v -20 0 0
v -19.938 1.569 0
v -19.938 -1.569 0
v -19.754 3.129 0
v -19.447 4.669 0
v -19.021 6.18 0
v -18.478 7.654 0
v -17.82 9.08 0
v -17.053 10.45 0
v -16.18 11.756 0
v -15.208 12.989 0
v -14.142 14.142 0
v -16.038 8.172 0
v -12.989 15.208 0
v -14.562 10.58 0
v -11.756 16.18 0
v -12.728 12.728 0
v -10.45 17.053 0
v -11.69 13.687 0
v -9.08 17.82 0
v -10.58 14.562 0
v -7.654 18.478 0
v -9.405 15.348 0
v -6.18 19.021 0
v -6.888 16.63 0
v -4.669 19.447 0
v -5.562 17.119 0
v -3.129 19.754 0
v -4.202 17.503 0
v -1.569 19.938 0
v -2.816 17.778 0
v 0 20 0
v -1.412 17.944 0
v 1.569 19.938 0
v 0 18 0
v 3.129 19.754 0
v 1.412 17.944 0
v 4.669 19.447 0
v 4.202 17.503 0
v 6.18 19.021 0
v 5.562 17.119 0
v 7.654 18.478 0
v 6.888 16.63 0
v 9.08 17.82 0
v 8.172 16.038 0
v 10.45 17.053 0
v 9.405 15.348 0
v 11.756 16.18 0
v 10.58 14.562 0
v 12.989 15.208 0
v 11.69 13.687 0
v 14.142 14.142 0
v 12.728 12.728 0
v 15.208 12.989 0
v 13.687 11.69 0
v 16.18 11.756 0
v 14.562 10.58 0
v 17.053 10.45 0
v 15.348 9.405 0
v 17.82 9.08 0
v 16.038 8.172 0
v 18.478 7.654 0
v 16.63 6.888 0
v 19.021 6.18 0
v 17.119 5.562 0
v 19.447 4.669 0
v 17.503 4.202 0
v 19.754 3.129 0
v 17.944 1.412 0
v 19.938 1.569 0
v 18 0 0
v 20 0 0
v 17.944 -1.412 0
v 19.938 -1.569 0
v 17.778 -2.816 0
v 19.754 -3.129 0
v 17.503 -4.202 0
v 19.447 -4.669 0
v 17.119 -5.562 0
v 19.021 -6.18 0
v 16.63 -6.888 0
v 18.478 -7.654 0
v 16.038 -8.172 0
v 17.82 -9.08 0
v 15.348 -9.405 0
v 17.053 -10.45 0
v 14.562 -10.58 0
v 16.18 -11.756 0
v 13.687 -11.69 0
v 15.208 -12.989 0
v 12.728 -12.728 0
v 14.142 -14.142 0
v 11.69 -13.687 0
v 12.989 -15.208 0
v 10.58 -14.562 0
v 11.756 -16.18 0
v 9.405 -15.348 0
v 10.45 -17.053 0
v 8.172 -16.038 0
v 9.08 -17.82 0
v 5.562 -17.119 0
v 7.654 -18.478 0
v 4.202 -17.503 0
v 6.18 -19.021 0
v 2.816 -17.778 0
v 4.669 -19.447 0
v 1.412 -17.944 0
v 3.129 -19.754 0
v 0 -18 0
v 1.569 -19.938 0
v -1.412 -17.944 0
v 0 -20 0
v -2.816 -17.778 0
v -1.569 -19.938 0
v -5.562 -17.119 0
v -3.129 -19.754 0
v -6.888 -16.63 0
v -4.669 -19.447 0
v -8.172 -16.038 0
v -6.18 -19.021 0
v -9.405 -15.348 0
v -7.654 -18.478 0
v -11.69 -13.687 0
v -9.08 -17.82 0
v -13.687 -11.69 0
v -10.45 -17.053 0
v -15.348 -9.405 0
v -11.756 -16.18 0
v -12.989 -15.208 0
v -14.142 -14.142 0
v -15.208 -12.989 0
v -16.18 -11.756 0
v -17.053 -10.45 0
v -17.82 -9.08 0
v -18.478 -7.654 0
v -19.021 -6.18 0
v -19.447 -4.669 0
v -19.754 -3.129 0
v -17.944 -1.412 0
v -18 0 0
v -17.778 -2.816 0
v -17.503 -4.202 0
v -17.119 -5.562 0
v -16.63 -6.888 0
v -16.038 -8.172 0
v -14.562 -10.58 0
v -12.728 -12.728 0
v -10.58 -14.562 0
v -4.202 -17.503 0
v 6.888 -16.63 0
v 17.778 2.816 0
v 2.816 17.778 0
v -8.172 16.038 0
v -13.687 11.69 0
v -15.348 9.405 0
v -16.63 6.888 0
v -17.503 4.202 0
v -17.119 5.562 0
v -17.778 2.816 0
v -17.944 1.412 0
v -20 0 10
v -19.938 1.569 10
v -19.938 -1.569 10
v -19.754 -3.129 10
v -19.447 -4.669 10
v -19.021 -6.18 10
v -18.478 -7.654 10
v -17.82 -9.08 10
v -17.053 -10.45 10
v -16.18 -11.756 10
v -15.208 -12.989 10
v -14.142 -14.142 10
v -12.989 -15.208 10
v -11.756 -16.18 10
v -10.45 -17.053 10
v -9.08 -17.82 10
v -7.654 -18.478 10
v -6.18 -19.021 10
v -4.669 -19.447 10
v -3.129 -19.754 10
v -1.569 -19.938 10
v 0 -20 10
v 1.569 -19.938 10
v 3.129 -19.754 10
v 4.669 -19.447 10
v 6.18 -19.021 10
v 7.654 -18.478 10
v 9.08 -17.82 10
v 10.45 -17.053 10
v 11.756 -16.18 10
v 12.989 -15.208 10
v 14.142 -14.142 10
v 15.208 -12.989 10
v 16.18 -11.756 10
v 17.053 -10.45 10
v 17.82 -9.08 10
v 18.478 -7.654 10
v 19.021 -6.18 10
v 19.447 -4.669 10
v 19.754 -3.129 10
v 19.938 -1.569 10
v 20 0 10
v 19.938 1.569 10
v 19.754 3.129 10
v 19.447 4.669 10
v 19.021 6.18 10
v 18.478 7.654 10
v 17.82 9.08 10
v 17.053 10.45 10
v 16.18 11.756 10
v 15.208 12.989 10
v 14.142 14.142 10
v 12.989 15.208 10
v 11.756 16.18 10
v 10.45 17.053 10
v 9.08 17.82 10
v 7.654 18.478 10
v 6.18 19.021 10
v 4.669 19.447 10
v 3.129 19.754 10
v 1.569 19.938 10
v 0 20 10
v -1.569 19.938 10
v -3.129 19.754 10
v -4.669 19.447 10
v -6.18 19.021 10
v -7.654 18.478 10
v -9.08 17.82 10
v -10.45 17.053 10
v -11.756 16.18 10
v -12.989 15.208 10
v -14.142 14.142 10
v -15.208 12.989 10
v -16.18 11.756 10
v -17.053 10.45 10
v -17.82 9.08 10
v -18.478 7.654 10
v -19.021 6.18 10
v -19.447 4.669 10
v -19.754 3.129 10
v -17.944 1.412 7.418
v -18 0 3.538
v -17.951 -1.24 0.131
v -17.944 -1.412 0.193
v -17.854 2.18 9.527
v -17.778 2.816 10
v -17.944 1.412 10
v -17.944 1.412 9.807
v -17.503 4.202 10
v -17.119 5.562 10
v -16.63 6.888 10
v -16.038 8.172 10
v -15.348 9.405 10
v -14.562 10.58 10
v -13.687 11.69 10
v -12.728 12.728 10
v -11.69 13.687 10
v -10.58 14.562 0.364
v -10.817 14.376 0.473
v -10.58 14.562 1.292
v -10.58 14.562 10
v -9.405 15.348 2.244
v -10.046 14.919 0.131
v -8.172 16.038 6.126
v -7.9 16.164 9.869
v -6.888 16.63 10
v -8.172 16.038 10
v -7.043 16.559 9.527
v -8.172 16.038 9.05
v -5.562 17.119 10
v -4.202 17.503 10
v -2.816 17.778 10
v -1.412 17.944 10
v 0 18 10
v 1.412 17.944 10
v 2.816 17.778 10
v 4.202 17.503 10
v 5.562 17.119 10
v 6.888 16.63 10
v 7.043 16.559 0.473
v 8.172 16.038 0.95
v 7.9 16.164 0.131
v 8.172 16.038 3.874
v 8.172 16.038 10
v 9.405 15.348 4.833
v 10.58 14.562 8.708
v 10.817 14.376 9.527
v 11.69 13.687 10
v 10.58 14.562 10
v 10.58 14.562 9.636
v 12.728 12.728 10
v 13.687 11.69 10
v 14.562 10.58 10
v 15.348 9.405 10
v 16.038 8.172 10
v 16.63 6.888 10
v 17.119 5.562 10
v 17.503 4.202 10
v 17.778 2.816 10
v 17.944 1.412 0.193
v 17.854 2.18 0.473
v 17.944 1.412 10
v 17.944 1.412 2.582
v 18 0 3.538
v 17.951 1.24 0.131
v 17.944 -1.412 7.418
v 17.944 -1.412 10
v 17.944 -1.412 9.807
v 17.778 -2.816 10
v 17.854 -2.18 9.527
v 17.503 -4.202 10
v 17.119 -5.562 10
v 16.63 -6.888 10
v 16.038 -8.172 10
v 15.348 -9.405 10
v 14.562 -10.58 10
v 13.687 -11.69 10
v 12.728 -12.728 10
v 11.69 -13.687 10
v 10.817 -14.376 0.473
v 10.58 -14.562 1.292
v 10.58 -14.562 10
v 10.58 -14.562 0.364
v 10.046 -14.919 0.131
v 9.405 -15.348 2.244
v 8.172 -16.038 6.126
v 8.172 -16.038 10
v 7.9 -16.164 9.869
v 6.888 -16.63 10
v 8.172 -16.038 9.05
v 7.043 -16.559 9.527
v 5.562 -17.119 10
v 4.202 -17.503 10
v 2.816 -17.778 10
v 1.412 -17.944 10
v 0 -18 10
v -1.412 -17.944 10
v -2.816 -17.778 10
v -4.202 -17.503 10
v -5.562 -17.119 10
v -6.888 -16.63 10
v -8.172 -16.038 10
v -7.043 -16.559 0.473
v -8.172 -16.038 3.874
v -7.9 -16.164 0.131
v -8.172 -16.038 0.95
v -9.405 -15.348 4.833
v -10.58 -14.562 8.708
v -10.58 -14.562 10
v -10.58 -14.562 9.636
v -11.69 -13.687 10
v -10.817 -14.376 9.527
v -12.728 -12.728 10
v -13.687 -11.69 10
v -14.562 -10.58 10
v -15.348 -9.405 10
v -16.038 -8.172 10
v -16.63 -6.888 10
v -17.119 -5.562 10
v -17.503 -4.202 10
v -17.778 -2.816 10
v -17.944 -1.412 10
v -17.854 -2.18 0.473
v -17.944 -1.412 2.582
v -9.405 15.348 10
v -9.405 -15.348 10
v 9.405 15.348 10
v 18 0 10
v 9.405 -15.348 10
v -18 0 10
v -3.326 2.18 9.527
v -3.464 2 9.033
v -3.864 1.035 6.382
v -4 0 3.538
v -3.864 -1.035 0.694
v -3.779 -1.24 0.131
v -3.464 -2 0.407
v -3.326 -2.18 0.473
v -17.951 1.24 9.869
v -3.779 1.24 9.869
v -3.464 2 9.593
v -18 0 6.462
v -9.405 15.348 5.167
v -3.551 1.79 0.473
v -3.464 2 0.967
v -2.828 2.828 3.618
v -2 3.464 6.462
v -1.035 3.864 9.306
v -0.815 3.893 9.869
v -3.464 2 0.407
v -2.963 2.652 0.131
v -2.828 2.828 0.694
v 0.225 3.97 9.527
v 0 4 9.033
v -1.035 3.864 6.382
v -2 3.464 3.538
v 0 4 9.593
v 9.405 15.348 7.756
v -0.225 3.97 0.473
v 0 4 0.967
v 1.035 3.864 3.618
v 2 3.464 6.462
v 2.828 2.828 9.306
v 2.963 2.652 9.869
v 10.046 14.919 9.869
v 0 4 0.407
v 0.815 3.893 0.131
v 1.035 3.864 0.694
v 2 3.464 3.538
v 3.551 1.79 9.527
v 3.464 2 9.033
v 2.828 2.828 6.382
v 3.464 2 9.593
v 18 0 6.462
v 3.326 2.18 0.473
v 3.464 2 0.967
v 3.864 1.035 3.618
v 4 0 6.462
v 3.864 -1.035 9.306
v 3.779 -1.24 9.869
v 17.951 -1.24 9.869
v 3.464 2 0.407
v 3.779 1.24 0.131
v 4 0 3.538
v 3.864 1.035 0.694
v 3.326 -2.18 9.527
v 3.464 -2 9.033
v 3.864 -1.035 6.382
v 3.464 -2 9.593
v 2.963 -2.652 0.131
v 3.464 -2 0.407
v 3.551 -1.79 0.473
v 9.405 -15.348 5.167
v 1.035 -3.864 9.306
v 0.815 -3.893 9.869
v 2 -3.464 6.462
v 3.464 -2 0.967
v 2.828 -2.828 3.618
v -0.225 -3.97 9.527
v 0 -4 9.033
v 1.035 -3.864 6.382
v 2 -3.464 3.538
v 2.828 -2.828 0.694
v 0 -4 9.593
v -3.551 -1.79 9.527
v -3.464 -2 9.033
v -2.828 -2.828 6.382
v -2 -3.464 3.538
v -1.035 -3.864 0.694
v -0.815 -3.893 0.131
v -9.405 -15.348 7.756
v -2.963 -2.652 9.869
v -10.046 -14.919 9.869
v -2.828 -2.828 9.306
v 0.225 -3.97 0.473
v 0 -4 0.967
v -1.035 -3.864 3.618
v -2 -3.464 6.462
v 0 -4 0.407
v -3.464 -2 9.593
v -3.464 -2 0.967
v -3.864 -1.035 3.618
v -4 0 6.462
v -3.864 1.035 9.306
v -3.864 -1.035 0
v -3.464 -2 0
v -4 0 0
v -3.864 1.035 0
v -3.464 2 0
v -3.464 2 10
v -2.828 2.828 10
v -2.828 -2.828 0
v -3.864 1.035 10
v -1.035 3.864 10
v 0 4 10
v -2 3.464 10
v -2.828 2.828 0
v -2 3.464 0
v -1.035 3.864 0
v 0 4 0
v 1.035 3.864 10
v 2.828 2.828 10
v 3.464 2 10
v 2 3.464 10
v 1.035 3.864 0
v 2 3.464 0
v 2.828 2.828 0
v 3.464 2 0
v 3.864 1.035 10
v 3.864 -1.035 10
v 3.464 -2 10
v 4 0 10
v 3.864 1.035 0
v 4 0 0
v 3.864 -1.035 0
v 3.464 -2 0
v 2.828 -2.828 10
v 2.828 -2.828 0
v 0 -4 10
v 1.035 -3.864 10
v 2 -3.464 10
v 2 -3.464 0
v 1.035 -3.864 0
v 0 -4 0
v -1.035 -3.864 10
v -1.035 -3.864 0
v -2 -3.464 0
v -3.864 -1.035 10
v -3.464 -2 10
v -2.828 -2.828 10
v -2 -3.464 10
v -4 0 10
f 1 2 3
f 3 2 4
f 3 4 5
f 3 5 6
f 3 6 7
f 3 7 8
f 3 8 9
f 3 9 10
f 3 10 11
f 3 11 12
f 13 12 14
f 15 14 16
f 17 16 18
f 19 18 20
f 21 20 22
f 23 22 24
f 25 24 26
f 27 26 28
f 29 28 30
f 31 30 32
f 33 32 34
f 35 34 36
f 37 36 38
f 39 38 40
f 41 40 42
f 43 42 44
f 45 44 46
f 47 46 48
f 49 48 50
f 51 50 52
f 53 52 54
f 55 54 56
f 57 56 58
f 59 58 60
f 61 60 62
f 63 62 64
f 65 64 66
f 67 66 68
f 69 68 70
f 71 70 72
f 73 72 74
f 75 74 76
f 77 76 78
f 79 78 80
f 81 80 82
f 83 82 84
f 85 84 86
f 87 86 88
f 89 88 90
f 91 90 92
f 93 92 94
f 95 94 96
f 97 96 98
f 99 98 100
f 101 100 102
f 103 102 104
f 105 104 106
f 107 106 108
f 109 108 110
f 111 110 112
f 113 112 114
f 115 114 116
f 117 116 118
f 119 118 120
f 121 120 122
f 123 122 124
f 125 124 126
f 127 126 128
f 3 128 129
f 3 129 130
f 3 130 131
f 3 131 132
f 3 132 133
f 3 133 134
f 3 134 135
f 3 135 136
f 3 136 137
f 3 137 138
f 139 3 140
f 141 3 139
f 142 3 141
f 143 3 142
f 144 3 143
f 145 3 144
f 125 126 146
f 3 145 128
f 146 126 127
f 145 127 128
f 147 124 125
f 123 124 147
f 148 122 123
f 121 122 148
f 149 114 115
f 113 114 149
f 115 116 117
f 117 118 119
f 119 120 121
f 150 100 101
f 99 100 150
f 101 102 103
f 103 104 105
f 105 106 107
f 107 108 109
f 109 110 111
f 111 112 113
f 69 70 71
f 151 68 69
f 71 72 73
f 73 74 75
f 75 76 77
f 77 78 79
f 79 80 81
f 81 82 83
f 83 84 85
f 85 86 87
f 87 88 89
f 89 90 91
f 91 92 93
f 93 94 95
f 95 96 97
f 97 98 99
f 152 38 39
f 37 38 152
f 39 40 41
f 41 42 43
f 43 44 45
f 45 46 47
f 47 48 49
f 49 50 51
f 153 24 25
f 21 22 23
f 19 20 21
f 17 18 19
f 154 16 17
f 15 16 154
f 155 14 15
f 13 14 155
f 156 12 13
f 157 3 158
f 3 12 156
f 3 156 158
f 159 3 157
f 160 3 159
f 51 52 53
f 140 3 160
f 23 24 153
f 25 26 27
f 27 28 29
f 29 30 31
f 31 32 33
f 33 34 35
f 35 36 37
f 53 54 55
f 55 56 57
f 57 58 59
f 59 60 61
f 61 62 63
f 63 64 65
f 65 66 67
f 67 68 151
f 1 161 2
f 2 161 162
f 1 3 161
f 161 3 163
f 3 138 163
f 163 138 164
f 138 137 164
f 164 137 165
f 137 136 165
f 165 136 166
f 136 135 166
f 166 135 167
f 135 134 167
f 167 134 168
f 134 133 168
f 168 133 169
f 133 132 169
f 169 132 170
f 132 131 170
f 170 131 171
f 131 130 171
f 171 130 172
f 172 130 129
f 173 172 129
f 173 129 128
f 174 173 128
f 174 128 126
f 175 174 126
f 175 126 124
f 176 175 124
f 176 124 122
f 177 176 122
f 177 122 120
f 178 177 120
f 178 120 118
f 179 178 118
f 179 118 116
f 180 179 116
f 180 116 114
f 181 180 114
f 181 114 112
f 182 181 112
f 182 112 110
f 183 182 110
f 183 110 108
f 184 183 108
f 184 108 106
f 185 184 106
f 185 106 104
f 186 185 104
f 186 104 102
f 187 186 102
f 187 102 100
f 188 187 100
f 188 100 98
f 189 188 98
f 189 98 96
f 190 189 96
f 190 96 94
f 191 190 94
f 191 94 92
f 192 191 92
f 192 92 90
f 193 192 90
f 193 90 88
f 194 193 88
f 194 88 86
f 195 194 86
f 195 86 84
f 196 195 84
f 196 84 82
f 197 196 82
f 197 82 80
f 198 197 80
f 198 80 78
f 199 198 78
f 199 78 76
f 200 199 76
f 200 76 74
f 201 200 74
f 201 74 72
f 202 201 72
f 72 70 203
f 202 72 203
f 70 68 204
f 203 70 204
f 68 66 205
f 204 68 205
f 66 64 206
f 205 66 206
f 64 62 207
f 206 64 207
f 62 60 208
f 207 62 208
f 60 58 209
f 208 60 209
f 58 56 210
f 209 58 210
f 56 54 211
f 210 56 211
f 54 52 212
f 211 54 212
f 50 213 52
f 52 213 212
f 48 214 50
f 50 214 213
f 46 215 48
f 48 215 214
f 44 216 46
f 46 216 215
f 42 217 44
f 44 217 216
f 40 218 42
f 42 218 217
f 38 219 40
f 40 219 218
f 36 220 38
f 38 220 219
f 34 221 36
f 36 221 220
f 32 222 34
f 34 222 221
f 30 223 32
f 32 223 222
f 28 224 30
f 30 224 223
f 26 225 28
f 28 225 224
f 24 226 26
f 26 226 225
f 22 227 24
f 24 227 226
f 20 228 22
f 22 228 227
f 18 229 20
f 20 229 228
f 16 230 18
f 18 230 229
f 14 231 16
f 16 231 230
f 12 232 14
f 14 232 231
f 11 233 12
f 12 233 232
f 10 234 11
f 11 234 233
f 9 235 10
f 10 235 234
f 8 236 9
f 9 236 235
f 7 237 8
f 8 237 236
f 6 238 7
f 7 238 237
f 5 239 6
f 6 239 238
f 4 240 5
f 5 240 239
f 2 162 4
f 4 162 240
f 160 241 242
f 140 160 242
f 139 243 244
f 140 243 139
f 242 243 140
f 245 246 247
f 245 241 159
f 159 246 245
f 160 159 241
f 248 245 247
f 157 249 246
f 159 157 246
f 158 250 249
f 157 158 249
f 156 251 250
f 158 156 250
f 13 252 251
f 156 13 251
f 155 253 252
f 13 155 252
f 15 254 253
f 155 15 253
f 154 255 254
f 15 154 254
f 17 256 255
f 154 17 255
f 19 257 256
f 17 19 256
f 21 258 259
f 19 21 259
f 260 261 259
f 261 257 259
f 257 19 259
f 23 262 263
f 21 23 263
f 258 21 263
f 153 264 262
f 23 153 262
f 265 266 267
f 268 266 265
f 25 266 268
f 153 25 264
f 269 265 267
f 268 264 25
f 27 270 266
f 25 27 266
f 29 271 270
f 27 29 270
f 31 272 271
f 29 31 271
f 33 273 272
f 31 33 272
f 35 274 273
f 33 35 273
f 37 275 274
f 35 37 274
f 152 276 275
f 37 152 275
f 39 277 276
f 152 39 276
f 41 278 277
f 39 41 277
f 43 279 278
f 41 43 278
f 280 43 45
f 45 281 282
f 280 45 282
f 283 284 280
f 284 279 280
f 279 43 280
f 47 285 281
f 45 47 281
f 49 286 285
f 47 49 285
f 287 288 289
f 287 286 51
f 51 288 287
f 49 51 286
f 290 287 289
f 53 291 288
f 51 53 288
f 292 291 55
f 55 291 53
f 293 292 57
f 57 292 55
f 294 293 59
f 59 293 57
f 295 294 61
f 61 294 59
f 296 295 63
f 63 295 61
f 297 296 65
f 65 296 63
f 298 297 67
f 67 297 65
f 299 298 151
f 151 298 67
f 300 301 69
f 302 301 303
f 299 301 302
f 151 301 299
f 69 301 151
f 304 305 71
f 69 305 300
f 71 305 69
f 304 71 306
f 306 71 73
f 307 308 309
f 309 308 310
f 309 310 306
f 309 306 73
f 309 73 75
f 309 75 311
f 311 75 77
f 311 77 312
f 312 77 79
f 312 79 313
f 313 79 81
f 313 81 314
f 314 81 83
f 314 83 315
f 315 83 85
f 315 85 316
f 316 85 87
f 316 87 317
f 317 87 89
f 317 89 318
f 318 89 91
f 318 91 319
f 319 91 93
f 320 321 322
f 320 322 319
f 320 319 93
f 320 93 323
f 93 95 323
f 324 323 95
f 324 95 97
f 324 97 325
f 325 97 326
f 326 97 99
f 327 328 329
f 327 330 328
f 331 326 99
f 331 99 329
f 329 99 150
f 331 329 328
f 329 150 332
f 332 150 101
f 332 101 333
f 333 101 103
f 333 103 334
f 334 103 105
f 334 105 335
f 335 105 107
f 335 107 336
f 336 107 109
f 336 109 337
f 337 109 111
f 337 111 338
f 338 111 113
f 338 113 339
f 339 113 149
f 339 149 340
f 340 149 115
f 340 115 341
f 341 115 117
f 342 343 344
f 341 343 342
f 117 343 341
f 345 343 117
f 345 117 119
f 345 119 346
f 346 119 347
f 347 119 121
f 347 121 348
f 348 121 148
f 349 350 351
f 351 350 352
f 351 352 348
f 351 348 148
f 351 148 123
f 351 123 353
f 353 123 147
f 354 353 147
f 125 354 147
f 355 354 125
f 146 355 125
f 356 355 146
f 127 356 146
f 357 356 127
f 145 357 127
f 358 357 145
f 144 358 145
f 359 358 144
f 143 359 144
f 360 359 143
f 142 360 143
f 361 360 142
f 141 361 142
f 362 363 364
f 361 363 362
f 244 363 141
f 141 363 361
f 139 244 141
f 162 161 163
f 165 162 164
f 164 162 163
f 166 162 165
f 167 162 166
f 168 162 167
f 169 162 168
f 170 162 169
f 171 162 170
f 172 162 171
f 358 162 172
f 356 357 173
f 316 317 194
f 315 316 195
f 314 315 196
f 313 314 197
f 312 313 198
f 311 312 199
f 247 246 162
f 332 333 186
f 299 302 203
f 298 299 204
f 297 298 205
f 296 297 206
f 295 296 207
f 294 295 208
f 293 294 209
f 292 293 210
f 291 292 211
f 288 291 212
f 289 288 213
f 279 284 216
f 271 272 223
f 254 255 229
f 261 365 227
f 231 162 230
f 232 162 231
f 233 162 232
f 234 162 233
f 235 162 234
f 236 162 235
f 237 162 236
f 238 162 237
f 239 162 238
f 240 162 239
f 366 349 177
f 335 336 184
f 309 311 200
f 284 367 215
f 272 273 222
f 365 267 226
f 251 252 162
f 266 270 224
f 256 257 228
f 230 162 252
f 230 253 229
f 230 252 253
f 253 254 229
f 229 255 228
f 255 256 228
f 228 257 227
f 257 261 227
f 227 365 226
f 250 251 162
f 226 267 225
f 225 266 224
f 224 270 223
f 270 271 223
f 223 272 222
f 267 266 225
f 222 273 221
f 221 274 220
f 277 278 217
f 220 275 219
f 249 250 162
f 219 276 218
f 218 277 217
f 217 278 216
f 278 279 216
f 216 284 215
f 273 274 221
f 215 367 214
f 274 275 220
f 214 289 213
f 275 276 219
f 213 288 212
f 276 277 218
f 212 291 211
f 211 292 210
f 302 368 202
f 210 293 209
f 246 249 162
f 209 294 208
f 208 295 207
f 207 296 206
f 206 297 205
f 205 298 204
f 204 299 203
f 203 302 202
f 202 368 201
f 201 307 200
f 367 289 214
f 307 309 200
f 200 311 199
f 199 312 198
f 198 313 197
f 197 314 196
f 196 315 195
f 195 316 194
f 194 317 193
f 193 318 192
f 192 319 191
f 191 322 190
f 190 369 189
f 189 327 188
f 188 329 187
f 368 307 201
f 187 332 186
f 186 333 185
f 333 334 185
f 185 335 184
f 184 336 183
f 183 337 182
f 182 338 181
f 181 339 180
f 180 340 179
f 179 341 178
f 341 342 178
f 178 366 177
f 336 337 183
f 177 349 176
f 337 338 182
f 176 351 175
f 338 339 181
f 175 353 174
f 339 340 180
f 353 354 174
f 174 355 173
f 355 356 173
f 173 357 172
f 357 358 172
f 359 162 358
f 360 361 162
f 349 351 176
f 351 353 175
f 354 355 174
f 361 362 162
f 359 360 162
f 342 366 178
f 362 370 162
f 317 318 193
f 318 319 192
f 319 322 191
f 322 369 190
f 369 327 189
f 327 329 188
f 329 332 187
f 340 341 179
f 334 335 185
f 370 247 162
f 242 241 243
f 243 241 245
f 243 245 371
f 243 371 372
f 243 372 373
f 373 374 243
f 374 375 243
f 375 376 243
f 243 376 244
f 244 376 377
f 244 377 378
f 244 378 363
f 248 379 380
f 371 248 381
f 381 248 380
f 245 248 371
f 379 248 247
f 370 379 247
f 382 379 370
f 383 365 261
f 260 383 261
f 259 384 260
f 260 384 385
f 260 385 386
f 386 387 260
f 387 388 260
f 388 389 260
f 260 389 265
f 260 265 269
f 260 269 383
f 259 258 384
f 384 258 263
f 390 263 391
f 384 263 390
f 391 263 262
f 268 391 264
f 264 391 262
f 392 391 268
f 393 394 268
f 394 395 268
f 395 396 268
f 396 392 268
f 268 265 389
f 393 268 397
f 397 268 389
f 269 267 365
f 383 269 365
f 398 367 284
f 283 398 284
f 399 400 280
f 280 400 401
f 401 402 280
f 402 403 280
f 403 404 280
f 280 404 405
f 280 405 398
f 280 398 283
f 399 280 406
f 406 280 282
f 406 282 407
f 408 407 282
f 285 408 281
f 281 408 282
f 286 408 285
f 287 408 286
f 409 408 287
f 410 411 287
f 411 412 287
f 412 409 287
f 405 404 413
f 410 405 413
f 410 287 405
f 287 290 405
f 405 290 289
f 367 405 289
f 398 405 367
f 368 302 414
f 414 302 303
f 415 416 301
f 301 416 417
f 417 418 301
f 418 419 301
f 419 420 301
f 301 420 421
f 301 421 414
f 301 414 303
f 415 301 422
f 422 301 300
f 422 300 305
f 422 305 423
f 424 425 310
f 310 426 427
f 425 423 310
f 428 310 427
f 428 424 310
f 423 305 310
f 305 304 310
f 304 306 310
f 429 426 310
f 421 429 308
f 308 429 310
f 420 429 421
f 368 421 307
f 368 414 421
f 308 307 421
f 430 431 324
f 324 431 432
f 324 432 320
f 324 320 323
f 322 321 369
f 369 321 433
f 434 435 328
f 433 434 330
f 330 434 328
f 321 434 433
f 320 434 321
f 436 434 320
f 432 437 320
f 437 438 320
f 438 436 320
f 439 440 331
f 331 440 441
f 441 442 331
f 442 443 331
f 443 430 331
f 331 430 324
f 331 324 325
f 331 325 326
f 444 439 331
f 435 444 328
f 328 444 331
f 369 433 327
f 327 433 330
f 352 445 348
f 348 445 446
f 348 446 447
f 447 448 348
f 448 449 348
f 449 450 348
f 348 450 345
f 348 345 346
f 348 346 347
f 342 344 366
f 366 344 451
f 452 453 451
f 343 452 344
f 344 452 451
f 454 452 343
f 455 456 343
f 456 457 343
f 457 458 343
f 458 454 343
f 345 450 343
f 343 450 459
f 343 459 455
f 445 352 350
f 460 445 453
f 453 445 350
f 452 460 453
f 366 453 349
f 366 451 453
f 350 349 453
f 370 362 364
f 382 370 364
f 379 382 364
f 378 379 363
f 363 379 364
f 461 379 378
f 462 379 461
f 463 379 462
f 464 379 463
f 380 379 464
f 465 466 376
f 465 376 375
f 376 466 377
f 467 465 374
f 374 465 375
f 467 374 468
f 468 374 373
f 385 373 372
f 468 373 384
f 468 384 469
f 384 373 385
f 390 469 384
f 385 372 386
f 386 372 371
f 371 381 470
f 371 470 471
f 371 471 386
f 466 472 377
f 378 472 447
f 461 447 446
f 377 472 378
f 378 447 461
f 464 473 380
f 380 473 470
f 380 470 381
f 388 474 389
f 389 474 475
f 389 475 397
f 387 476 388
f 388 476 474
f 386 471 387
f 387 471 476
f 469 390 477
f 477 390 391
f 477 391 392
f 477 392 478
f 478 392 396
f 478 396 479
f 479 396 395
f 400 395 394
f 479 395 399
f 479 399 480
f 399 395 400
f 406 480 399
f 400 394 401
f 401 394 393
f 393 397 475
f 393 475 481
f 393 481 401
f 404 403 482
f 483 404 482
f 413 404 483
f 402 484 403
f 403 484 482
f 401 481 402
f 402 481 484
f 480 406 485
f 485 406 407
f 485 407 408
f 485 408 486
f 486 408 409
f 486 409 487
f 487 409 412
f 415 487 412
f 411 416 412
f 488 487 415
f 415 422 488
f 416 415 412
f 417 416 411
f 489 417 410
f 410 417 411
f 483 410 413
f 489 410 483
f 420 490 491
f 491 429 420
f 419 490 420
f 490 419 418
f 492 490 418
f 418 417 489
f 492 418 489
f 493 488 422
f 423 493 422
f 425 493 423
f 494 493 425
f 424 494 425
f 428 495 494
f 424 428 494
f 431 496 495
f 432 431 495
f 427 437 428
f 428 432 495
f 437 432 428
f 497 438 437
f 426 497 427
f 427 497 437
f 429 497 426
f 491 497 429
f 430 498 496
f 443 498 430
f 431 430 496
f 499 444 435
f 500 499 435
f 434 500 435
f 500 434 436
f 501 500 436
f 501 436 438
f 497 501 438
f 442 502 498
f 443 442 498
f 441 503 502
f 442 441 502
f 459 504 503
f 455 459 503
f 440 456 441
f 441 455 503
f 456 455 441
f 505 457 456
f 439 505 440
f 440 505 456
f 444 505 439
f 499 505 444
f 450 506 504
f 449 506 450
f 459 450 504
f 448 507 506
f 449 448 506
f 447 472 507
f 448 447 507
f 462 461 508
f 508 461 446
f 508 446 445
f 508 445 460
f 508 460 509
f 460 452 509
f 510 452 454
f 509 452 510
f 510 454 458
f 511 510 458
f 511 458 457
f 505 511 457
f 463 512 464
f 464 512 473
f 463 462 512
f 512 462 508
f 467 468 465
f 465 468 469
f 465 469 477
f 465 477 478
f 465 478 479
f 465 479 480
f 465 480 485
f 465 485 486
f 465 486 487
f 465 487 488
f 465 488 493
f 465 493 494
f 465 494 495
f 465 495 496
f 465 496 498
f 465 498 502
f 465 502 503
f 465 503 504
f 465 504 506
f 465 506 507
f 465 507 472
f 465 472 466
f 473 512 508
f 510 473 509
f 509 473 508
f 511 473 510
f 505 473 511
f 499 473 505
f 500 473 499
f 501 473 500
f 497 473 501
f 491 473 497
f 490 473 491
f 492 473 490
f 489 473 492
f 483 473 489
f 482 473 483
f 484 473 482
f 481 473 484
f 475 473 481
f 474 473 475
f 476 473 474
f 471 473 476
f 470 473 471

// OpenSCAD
fan_radius = 20;
fan_height = 10;
hub_radius = fan_radius / 5;
blade_width = 1;
blade_count = 6;
blade_angle = 20;
outer_ring_width = 2;

difference(){
	// outer fan ring
	cylinder(r=fan_radius,h=fan_height,$fn=fan_radius*4);

	// outer fan ring hole
	translate([0,0,-1]){
		cylinder(r=fan_radius-outer_ring_width,h=fan_height+2,$fn=fan_radius*4);
	}
}

// hub
cylinder(r=hub_radius,h=fan_height,$fn=hub_radius*6);

// blades
for(i=[0:blade_count]){
	rotate(i*360/blade_count,[0,0,1]){
		translate([0,0,(fan_height/2)]){
			rotate([blade_angle,0,0]){
				translate([0,-blade_width/2,-(fan_height/2)]){
					cube([fan_radius-1,blade_width,fan_height]);
				}
			}
		}
	}
}
